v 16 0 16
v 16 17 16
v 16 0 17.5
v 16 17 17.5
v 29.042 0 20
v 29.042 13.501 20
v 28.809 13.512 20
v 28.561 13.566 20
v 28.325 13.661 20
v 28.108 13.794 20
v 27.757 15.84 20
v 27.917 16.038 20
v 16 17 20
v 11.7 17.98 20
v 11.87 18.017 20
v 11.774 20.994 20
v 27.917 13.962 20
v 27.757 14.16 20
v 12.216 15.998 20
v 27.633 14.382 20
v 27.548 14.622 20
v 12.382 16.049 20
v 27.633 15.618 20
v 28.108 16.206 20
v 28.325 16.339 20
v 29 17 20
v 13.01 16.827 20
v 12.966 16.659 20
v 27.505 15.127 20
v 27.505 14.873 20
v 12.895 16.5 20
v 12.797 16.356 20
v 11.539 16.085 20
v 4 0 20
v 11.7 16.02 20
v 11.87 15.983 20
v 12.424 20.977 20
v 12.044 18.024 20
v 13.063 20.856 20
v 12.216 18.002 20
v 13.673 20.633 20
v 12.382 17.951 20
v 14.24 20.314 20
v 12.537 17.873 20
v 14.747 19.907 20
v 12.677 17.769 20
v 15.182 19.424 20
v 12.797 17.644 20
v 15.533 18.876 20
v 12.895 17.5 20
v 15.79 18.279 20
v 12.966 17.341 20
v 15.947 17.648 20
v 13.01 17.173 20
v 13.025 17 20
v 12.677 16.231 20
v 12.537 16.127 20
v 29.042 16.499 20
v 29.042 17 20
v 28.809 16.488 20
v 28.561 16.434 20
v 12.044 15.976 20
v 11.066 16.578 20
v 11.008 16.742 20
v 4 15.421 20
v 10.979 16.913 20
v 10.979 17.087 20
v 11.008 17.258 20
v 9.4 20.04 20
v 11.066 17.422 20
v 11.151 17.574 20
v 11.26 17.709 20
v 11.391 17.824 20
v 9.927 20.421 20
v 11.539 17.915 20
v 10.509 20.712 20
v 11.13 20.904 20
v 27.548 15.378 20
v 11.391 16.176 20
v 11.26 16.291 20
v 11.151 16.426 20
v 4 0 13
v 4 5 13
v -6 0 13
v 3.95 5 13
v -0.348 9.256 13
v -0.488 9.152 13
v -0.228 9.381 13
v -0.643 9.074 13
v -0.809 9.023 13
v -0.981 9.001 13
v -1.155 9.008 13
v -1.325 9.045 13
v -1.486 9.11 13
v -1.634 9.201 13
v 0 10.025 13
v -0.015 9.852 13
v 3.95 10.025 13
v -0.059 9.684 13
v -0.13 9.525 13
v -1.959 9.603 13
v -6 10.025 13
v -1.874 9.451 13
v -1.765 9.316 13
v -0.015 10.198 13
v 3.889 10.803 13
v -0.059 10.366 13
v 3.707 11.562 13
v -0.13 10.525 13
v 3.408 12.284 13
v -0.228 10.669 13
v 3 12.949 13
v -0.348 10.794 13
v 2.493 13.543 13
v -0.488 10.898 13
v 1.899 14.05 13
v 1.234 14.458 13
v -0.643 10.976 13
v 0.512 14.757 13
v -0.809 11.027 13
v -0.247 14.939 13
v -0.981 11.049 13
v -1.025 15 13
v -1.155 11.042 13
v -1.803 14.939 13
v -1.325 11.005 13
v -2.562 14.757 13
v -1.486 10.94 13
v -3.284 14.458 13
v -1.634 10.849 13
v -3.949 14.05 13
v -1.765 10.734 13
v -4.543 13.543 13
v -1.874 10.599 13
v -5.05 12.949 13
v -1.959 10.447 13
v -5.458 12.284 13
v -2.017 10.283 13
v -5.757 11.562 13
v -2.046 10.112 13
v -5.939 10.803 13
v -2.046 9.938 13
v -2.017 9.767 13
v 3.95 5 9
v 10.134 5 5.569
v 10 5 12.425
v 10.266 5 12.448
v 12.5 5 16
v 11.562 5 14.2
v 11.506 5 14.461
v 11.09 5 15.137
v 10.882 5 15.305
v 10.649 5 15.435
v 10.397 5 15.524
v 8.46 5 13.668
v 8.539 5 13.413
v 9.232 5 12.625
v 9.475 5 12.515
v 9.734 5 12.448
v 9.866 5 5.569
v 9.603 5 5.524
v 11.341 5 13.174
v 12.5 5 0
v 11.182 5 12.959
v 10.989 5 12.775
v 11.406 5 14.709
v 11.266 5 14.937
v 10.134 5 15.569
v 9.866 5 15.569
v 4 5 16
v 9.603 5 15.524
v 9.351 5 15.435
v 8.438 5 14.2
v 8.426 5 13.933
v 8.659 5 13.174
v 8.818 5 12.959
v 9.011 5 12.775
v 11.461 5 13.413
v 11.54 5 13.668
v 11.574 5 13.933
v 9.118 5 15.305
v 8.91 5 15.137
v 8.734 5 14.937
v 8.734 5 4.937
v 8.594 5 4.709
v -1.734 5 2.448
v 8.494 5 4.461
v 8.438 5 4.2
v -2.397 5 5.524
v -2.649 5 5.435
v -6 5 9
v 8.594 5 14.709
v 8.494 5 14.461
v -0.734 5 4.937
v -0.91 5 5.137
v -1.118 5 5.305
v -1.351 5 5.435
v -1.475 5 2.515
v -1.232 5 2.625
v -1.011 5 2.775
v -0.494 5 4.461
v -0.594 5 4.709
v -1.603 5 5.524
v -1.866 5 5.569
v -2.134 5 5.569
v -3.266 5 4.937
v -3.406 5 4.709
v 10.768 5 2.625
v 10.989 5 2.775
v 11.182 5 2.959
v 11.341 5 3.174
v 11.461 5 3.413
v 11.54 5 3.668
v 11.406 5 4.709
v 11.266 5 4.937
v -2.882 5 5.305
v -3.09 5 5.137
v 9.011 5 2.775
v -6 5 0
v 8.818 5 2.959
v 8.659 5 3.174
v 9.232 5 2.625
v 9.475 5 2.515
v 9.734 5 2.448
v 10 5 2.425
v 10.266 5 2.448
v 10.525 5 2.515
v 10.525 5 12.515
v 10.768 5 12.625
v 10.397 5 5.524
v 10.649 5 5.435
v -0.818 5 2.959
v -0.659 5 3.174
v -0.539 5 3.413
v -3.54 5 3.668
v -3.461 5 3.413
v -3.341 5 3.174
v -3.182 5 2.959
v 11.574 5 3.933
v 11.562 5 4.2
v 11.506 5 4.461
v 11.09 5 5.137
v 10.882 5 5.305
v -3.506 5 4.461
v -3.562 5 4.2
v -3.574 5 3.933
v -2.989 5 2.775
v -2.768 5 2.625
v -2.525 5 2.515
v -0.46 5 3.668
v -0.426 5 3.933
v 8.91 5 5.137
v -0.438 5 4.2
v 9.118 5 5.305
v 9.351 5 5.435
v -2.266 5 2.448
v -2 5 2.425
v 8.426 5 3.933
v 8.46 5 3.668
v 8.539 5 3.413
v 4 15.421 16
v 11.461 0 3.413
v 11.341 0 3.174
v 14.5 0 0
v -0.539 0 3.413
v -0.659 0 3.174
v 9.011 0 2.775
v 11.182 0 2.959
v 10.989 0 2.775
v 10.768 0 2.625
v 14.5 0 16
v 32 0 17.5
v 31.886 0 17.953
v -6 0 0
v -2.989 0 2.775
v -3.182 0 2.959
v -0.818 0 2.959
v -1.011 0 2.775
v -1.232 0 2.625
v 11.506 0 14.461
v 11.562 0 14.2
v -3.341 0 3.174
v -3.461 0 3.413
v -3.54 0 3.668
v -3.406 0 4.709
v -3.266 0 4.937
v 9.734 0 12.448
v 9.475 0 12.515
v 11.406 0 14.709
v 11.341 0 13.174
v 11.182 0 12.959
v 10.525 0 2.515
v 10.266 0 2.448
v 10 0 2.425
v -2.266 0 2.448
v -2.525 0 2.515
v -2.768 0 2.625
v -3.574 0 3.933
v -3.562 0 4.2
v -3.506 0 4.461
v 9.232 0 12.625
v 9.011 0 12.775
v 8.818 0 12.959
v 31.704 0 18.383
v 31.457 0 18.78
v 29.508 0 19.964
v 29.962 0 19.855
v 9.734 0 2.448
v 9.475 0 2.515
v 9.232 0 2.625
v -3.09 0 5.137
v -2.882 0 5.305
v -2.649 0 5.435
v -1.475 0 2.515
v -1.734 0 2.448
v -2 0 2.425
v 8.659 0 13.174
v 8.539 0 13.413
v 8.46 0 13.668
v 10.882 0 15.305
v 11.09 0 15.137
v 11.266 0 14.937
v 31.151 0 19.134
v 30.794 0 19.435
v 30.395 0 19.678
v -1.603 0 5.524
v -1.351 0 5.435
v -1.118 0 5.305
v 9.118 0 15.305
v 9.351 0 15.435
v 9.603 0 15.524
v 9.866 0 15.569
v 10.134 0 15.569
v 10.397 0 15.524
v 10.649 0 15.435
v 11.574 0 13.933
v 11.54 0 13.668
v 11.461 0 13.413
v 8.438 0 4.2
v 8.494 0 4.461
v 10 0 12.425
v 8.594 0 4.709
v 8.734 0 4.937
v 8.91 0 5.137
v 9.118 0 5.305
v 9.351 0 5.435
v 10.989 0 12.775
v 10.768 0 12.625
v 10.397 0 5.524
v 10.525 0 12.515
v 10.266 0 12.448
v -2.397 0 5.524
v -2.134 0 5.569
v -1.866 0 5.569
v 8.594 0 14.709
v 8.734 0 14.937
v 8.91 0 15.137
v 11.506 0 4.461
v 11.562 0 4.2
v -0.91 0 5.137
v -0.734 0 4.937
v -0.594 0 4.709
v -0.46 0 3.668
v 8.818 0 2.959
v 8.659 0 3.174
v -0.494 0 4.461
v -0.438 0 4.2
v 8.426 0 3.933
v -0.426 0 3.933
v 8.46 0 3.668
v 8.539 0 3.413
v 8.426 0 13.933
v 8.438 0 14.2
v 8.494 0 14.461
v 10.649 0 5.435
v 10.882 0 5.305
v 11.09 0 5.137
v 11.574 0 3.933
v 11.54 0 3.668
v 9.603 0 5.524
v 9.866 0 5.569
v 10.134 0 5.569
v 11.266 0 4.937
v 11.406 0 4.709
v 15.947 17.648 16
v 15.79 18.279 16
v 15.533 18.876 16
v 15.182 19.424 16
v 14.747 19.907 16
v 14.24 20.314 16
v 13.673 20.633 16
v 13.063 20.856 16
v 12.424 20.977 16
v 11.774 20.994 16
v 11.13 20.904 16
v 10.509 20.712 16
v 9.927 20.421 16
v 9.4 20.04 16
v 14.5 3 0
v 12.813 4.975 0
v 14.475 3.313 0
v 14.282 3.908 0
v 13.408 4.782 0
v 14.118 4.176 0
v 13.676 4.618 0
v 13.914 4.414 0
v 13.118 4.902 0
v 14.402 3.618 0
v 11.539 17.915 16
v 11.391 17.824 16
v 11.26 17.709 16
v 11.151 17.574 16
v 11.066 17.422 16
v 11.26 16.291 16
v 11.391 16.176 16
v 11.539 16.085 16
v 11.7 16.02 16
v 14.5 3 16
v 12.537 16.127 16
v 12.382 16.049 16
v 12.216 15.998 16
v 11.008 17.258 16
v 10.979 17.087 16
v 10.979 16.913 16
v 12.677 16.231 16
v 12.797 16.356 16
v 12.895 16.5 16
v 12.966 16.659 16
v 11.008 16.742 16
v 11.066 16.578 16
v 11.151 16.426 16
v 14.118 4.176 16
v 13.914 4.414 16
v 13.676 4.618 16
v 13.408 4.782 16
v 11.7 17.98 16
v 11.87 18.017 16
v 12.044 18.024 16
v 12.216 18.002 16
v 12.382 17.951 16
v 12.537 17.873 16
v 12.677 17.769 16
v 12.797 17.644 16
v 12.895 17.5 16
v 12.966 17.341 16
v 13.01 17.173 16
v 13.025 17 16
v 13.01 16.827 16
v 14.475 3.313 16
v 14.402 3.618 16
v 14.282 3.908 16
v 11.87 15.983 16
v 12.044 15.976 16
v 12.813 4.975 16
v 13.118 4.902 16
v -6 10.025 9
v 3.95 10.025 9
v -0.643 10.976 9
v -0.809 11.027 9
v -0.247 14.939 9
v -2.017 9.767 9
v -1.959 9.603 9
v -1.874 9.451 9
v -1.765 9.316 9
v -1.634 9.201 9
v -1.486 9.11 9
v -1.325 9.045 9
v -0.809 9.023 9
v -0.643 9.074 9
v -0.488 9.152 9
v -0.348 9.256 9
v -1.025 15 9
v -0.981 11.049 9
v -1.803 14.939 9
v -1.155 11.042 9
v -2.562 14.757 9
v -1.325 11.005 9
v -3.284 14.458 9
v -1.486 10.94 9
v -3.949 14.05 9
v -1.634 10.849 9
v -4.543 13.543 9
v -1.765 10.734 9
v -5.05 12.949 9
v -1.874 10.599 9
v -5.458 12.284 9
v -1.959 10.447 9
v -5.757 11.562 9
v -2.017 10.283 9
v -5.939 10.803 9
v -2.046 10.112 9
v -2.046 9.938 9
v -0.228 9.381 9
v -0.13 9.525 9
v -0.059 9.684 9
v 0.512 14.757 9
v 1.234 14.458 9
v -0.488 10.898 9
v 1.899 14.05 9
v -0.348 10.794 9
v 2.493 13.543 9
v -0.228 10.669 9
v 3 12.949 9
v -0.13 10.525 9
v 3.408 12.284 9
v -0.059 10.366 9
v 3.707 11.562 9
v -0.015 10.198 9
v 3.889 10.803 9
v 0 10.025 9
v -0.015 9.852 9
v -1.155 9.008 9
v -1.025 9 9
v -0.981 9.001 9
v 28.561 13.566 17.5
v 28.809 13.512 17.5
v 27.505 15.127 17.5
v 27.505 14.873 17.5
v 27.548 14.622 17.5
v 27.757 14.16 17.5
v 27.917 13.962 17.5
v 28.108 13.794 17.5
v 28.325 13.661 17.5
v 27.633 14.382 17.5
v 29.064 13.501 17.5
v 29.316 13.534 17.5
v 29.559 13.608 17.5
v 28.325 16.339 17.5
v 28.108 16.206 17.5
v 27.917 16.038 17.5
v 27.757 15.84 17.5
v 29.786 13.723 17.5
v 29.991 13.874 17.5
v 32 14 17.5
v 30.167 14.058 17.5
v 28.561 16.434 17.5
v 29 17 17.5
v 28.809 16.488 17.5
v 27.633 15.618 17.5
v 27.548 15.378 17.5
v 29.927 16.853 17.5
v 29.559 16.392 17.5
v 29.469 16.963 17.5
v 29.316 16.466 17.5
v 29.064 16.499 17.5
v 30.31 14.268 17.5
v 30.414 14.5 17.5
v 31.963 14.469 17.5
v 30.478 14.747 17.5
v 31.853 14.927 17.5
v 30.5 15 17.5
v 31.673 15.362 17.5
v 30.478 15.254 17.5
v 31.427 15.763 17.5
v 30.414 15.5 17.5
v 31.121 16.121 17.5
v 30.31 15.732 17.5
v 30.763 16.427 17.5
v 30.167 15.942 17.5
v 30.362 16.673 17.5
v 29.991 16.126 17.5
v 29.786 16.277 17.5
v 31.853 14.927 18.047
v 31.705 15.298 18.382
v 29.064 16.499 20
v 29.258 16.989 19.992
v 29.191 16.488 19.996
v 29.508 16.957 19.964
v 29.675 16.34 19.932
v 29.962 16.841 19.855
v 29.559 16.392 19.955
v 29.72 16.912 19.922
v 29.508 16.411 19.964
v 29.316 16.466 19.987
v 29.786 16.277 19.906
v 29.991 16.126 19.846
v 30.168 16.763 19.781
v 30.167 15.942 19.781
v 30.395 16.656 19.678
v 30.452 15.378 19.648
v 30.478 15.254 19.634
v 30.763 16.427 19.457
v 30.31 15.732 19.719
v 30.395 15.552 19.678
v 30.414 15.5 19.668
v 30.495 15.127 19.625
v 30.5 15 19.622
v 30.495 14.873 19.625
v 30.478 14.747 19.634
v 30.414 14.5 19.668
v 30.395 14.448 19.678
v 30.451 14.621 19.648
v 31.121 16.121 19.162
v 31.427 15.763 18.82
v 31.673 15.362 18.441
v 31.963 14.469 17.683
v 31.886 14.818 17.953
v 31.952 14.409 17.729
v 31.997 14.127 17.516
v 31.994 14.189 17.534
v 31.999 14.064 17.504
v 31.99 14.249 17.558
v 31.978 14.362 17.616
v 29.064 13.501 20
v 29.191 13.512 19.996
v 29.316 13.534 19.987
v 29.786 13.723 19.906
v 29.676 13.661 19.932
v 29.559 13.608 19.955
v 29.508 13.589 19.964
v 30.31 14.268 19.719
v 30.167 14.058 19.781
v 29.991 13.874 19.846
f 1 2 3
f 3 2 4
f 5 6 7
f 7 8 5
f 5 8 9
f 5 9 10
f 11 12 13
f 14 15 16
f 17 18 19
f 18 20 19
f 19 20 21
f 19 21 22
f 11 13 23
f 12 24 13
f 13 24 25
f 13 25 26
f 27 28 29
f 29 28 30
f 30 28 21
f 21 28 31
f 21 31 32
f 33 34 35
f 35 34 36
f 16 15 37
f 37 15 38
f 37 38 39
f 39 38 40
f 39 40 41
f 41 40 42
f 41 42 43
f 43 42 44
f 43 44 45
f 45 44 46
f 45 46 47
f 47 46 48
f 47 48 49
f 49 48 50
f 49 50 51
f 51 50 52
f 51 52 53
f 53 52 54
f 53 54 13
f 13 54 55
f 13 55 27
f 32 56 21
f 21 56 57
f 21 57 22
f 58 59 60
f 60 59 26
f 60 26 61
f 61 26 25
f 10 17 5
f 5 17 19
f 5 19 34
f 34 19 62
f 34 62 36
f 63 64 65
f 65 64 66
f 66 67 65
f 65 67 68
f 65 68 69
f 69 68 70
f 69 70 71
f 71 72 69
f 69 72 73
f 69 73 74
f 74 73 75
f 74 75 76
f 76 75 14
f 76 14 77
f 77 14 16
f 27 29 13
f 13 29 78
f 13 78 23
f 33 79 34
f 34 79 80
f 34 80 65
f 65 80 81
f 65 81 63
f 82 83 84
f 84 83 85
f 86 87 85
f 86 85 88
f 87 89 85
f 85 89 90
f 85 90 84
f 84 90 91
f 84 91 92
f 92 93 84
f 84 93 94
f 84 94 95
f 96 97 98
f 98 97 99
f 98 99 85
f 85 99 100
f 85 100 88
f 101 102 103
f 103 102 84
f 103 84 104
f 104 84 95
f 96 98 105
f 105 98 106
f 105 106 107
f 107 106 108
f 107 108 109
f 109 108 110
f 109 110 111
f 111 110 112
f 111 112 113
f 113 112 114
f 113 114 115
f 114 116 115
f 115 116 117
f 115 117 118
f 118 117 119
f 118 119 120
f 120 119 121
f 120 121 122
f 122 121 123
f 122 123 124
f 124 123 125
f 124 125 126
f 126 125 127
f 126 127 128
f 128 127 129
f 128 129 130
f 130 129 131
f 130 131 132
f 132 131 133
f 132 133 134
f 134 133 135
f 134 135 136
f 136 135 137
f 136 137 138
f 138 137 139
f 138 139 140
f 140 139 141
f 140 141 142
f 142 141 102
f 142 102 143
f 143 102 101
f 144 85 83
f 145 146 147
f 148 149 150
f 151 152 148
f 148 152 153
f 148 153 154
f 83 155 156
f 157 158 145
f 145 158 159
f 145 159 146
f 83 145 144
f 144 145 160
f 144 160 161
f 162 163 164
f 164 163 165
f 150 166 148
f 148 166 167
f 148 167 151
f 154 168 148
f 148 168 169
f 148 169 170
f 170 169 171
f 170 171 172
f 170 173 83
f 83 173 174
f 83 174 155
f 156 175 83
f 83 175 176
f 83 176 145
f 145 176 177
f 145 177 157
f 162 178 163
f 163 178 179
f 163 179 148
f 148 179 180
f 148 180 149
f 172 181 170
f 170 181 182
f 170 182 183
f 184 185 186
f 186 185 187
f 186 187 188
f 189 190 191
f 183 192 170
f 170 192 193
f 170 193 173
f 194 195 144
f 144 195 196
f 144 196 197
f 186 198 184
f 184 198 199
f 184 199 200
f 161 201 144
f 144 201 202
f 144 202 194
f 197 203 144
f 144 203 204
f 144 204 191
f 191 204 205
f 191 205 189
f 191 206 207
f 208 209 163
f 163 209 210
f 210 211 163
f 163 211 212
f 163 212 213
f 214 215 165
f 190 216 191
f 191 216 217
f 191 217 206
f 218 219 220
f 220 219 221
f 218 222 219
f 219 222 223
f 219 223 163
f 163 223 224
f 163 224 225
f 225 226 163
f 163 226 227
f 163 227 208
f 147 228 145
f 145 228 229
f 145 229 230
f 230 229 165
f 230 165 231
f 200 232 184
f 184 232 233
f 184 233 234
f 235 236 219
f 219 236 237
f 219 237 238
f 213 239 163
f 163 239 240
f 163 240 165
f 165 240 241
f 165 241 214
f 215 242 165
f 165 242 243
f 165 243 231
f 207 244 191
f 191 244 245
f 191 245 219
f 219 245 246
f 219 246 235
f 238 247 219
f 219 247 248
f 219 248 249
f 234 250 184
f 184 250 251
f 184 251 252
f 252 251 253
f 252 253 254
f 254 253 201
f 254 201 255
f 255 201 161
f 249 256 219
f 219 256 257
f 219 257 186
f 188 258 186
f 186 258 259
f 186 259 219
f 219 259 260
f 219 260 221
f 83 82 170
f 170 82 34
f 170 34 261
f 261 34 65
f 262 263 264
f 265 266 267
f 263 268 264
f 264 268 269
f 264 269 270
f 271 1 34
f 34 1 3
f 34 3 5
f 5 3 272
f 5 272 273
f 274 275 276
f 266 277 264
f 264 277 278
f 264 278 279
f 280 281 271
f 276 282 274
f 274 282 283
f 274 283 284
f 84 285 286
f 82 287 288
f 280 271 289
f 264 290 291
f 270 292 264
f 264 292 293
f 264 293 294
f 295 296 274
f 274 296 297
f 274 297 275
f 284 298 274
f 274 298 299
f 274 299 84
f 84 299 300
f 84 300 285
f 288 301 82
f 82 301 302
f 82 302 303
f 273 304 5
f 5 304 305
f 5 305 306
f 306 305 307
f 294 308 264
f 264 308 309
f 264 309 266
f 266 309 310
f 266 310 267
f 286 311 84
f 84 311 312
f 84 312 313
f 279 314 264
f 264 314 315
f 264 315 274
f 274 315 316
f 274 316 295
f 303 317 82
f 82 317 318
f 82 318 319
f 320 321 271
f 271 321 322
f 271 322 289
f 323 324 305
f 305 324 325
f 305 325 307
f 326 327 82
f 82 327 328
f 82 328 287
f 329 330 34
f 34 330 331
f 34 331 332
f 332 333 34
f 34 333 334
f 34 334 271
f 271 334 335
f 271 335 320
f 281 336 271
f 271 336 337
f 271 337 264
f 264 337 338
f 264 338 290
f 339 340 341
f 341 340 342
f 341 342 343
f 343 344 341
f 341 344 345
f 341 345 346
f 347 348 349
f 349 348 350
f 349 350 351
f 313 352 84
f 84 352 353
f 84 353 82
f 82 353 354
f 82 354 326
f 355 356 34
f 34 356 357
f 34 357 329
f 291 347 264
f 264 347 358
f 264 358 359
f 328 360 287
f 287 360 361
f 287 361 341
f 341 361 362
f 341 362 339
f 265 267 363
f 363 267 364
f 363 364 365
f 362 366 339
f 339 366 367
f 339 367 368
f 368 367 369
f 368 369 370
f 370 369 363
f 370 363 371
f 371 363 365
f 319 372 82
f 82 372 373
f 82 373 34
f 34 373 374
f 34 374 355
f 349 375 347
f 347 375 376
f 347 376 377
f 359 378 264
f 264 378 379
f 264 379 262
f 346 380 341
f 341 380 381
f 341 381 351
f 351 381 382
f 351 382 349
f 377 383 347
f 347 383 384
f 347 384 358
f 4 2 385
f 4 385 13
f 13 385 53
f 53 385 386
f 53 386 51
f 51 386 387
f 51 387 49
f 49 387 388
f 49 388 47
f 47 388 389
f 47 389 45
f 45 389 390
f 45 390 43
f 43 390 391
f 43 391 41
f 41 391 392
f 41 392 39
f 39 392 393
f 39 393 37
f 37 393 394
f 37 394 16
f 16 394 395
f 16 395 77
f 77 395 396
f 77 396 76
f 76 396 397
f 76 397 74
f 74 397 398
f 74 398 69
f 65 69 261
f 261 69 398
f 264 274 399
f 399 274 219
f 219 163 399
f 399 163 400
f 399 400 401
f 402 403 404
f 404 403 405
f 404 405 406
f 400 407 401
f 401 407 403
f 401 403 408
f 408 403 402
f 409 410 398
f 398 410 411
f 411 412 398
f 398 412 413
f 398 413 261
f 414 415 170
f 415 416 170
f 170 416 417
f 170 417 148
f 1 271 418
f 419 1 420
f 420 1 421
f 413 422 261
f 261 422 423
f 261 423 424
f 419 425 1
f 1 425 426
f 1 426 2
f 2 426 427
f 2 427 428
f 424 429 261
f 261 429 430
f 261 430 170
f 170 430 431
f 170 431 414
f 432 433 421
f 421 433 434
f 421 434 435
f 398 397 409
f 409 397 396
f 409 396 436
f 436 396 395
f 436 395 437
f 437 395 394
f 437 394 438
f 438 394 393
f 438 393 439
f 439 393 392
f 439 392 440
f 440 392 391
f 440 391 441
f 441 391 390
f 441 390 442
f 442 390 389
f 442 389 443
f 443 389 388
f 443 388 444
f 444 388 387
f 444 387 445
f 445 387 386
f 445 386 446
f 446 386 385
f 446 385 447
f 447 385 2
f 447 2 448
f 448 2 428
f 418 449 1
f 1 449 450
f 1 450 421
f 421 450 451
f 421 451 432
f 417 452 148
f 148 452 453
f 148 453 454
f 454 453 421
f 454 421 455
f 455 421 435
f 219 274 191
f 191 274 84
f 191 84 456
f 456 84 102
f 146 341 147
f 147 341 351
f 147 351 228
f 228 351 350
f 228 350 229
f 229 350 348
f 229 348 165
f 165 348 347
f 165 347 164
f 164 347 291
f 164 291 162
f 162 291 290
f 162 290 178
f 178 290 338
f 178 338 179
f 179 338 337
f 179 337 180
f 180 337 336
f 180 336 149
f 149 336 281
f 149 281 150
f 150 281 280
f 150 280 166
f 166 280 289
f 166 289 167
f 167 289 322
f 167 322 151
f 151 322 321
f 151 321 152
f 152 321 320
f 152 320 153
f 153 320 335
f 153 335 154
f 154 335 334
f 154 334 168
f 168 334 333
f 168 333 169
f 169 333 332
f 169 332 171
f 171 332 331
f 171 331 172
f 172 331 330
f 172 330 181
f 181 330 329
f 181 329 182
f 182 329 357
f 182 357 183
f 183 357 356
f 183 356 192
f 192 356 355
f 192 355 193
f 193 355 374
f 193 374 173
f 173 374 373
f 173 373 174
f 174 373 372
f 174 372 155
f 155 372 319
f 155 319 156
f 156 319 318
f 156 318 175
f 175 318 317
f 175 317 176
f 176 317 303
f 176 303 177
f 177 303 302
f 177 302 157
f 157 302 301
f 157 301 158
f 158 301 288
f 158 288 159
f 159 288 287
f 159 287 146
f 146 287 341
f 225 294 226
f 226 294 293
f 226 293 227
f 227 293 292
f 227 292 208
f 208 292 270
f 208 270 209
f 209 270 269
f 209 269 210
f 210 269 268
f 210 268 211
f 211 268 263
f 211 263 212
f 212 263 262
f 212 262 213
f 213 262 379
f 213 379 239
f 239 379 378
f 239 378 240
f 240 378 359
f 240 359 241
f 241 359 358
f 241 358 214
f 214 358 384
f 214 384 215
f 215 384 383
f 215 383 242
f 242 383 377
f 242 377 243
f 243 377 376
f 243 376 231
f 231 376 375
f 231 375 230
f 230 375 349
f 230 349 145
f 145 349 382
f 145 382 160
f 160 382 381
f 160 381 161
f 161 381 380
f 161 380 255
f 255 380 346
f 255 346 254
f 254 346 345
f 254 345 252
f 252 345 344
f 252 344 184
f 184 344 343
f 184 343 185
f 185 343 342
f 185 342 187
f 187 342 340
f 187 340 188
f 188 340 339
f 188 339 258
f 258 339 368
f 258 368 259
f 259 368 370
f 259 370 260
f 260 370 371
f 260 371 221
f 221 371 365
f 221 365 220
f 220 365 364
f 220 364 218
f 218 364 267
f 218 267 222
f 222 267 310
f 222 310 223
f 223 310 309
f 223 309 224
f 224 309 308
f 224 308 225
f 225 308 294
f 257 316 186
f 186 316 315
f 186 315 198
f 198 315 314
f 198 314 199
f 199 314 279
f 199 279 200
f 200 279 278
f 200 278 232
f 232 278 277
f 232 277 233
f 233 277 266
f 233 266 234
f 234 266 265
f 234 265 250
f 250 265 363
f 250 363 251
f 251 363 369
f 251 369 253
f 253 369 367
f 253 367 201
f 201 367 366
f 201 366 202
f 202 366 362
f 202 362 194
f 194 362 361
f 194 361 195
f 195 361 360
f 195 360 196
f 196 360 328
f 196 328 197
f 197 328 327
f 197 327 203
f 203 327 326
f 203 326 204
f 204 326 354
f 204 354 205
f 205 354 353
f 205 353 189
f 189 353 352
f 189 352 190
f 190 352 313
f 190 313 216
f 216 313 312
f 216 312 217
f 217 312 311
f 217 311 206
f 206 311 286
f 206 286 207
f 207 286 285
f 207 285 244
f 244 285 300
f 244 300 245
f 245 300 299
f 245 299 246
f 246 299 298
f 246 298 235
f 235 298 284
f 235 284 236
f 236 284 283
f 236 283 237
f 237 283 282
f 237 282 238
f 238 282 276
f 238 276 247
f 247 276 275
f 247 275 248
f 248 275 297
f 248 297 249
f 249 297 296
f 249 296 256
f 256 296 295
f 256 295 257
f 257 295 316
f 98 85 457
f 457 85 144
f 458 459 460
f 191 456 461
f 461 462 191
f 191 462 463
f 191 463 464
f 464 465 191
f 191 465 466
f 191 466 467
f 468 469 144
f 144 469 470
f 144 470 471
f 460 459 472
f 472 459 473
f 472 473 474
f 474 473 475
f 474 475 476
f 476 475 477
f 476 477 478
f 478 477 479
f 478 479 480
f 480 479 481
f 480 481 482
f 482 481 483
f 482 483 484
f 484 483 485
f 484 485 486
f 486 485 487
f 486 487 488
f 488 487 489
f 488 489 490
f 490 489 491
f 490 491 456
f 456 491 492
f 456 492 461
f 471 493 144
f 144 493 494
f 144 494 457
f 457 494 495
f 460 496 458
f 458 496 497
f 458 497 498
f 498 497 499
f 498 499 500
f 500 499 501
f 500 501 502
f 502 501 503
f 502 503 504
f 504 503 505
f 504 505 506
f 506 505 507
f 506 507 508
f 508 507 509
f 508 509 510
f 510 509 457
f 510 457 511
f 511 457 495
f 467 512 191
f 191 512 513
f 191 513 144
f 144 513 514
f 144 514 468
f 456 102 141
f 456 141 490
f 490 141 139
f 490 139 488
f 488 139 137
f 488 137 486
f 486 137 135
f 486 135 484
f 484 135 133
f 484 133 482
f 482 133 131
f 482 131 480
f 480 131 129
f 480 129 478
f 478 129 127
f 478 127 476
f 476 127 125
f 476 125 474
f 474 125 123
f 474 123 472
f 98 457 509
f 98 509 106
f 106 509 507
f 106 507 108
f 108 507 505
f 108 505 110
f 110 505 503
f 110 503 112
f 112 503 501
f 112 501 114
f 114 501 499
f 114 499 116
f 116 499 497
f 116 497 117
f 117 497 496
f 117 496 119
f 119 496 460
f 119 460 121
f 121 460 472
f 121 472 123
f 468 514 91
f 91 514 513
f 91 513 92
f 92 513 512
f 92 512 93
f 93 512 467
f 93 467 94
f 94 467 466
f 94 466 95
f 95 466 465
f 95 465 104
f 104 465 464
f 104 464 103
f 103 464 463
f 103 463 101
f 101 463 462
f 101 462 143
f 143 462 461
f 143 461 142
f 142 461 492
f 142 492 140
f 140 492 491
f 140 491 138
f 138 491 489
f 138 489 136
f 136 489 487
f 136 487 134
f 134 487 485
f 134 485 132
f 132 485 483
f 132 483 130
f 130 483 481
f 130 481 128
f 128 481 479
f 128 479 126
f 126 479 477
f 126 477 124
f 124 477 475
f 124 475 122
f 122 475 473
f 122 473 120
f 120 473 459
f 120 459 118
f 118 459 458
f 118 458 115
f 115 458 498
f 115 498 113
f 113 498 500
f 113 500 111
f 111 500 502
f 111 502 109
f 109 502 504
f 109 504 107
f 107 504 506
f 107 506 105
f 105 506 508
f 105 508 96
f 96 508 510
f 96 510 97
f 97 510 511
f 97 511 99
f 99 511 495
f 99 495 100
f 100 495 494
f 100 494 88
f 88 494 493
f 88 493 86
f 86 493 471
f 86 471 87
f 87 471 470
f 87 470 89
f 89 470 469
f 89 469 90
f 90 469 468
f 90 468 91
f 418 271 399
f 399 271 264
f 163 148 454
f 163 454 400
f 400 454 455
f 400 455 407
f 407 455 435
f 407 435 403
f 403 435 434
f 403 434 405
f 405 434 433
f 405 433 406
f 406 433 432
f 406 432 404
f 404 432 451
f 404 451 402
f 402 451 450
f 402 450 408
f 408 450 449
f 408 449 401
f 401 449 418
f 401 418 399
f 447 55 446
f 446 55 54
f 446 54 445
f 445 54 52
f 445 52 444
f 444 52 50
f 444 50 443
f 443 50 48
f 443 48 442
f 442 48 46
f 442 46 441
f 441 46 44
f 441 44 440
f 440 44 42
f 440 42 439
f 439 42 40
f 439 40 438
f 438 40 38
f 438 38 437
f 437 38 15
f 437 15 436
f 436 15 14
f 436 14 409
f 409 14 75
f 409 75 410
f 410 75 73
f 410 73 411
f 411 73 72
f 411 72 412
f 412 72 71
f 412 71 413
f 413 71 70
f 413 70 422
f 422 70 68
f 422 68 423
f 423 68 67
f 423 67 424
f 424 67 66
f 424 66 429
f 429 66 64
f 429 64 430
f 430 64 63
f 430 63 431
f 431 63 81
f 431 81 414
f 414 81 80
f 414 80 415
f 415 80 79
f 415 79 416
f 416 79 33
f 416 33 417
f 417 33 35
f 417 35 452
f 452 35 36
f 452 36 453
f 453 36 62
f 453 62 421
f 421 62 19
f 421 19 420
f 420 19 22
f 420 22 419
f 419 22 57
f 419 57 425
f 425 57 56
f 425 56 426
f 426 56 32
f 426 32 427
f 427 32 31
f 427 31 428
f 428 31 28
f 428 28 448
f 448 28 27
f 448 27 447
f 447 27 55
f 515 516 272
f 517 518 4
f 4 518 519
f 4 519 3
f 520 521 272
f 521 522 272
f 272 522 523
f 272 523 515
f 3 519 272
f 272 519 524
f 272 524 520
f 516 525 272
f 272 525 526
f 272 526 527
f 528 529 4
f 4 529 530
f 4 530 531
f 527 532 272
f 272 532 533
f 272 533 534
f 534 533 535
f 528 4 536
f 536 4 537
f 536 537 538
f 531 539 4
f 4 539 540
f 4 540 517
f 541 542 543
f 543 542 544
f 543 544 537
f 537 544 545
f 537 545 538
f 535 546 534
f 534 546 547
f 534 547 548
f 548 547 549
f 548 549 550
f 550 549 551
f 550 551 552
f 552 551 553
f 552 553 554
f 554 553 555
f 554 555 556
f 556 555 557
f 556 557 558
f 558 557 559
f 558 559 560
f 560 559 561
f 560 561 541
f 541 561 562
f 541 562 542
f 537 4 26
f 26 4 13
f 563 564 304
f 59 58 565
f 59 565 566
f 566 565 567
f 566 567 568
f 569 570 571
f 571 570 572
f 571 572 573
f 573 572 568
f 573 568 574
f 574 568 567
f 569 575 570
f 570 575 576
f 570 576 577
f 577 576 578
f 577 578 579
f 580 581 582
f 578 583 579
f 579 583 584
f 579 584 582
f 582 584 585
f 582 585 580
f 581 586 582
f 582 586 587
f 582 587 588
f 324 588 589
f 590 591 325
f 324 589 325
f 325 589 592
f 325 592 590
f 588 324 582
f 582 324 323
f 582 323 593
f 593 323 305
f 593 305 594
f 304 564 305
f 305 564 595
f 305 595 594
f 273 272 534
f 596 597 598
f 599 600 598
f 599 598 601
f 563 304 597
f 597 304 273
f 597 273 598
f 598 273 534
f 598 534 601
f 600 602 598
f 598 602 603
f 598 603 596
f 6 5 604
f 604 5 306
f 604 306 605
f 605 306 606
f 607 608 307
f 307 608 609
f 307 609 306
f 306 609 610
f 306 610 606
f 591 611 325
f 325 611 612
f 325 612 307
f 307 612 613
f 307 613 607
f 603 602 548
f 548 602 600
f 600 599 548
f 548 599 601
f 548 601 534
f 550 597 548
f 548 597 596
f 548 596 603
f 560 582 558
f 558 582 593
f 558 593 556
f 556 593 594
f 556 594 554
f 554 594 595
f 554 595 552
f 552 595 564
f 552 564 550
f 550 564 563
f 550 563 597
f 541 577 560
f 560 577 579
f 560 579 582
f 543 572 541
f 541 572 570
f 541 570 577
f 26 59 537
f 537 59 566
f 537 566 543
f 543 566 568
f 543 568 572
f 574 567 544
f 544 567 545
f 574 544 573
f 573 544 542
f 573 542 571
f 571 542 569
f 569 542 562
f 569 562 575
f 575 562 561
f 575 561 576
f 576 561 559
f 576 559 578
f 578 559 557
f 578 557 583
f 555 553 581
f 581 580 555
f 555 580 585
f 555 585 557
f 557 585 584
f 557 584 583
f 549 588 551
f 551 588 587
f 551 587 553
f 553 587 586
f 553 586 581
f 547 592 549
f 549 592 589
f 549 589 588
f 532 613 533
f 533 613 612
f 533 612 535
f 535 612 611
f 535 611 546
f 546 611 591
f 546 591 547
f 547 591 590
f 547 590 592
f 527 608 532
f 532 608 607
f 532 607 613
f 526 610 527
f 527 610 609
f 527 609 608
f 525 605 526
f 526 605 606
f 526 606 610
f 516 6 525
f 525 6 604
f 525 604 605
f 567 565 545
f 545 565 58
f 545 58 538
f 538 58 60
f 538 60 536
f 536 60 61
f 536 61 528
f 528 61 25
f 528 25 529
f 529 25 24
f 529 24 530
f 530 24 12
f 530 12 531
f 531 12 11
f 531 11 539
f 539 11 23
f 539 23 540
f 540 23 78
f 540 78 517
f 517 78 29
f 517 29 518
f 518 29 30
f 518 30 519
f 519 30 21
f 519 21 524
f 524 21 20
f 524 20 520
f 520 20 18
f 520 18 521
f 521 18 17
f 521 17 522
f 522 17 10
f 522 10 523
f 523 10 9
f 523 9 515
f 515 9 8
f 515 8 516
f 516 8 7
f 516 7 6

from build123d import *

# Parameters (mm, degrees)
RESSALTO_EXTRUS_O1_DEPTH                  = 20
CORTE_EXTRUS_O1_DEPTH                     = 20
CORTE_EXTRUS_O2_DEPTH                     = 34.12099032335839
RESSALTO_EXTRUS_O2_DEPTH                  = 10
FURO_ROSCADO_PARA_CONDU_TE_DE_M3X0_51_D   = 3.15
ESBO_O20_W                                = 9.95
ESBO_O20_H                                = 4.000000000000002
RESSALTO_EXTRUS_O6_DEPTH                  = 10
FILETE3_R                                 = 4.975
BROCA_DE_ROSQUEAR_PARA_TARRAXA_DE_M2_54_D = 2.05
CORTE_EXTRUS_O3_DEPTH                     = 31.199337741083
FILETE5_R                                 = 2
BROCA_DE_ROSQUEAR_PARA_TARRAXA_DE_M2_55_D = 2.05
ESBO_O30_W                                = 2.5
ESBO_O30_H                                = 17
RESSALTO_EXTRUS_O9_DEPTH                  = 16
FILETE12_R                                = 3
ESBO_O31_R                                = 1.5000000000000009
CORTE_EXTRUS_O4_DEPTH                     = 44.18564583747706


# Some blends are built 0.0001 mm under size
with BuildPart() as part:
    # Esboço1 → Ressalto-extrusão1 (new body)
    with BuildSketch(Plane.XY):
        with BuildLine():
            Line((0, 0), (0, 12))
            Line((0, 12), (9.40008084297598, 20.03980597685765))
            ThreePointArc((9.40008084297598, 20.03980597685765), (13.67336836528959, 20.633158173552044), (16, 17))
            Line((16, 17), (16, 4))
            Line((16, 4), (16, 0))
            Line((16, 0), (0, 0))
        make_face()
    extrude(amount=RESSALTO_EXTRUS_O1_DEPTH)

    # Esboço2 → Corte-extrusão1 (cut)
    with BuildSketch(Plane(origin=(16, 0, 0), x_dir=(0, 0, -1), z_dir=(1, 0, 0))):
        Polygon((0, 5), (-16, 4.999999999999997), (-16, 21), (0, 21), align=None)
    extrude(amount=-CORTE_EXTRUS_O1_DEPTH, mode=Mode.SUBTRACT)

    # Esboço3 → Corte-extrusão2 (cut, through all)
    with BuildSketch(Plane.XY.offset(20)):
        Polygon((0, 0), (4, 0), (4, 15.421164609606624), (0, 12), align=None)
    extrude(amount=-CORTE_EXTRUS_O2_DEPTH, mode=Mode.SUBTRACT)

    # Esboço8 → Ressalto-extrusão2 (add)
    with BuildSketch(Plane.ZY.offset(-4)):
        Polygon((0, 5), (13, 4.999999999999998), (13, 0), (0, 0), align=None)
    extrude(amount=RESSALTO_EXTRUS_O2_DEPTH)

    # Furo roscado para conduíte de M3x0.51 (through all)
    with Locations(Plane(origin=(-2, 0, 4), x_dir=(0, 0, -1), z_dir=(0, -1, 0))):
        with Locations((0, 0), (0, 12), (-10, 12)):
            Hole(FURO_ROSCADO_PARA_CONDU_TE_DE_M3X0_51_D / 2)

    # Esboço20 → Ressalto-extrusão6 (add)
    with BuildSketch(Plane(origin=(0, 5, 8.1e-16), x_dir=(1, 0, 0), z_dir=(0, 1, 1.6e-16))):
        with Locations((-1.025, -11)):
            Rectangle(ESBO_O20_W, ESBO_O20_H)
    extrude(amount=RESSALTO_EXTRUS_O6_DEPTH)

    # Filete3
    filete3_edges = [part.edges().sort_by_distance(p)[0] for p in [
        (3.95, 14.999999999999998, 11.000000000000002),
        (-6, 14.999999999999998, 11.000000000000002),
    ]]
    fillet(filete3_edges, radius=FILETE3_R - 0.0001)  # a hair under: the kernel refuses the full size

    # Broca de rosquear para tarraxa de M2.54 (through all)
    with Locations(Plane.XY.offset(13)):
        with Locations((-1.025, 10.025)):
            Hole(BROCA_DE_ROSQUEAR_PARA_TARRAXA_DE_M2_54_D / 2)

    # Esboço24 → Corte-extrusão3 (cut, through all)
    with BuildSketch(Plane(origin=(0, 5, 8.1e-16), x_dir=(1, 0, 0), z_dir=(0, 1, 1.6e-16))):
        Polygon((16, 8.1e-16), (14.5, -1.8e-16), (14.500000000000002, -15.999999999999996), (16, -15.999999999999996), align=None)
    extrude(amount=-CORTE_EXTRUS_O3_DEPTH, mode=Mode.SUBTRACT)

    # Filete5
    filete5_edges = [part.edges().sort_by_distance(p)[0] for p in [
        (14.5, 4.999999999999999, 7.999999999999999),
    ]]
    fillet(filete5_edges, radius=FILETE5_R)

    # Broca de rosquear para tarraxa de M2.55 (through all)
    with Locations(Plane.XY.offset(20)):
        with Locations((12, 17)):
            Hole(BROCA_DE_ROSQUEAR_PARA_TARRAXA_DE_M2_55_D / 2)

    # Esboço30 → Ressalto-extrusão9 (add)
    with BuildSketch(Plane(origin=(16, 0, 0), x_dir=(0, 0, -1), z_dir=(1, 0, 0))):
        with Locations((-18.75, 8.5)):
            Rectangle(ESBO_O30_W, ESBO_O30_H)
    extrude(amount=RESSALTO_EXTRUS_O9_DEPTH)

    # Filete12
    # the kernel refuses this fillet: 3 mm, written as the material it takes off along each edge
    with BuildSketch(Plane(origin=(32, 17, 10), x_dir=(-1, 0, 0), z_dir=(0, 0, 1))) as filete12_piece_1:
        with BuildLine():
            CenterArc((FILETE12_R, FILETE12_R), FILETE12_R, 180, 90)
            Line((0, FILETE12_R), (-FILETE12_R * 0.02, FILETE12_R))
            Line((-FILETE12_R * 0.02, FILETE12_R), (-FILETE12_R * 0.02, -FILETE12_R * 0.02))
            Line((-FILETE12_R * 0.02, -FILETE12_R * 0.02), (FILETE12_R, -FILETE12_R * 0.02))
            Line((FILETE12_R, -FILETE12_R * 0.02), (FILETE12_R, 0))
        make_face()
    extrude(amount=17.5, mode=Mode.SUBTRACT)
    with BuildSketch(Plane(origin=(32, 24.39509972887527, 20), x_dir=(-1.1653e-13, 0, -1), z_dir=(0, -1, 0))) as filete12_piece_2:
        with BuildLine():
            CenterArc((3.0000000000003446, -2.9580398915497583), FILETE12_R, 99.59406822686617, 80.40593177314054)
            Line((3.447e-13, -2.958039891550108), (-0.05999999999965402, -2.958039891550115))
            Line((-0.05999999999965402, -2.958039891550115), (-0.05999999999999872, -6.99e-15))
            Line((-0.05999999999999872, -6.99e-15), (-6.99e-15, 0.06000000000000227))
            ThreePointArc((-6.99e-15, 0.06000000000000227), (1.250000000000018, 0.06000000000014793), (2.4900000000000446, 0.05916079783099687))
            Line((2.4900000000000446, 0.05916079783099687), (2.5000000000000497, 0))
        make_face()
    extrude(amount=31.79019945775054, mode=Mode.SUBTRACT)

    # Esboço31 → Corte-extrusão4 (cut, through all)
    with BuildSketch(Plane.XY.offset(20)):
        with Locations((29, 15.000000000000002)):
            Circle(ESBO_O31_R)
    extrude(amount=-CORTE_EXTRUS_O4_DEPTH, mode=Mode.SUBTRACT)


solid = part.part
